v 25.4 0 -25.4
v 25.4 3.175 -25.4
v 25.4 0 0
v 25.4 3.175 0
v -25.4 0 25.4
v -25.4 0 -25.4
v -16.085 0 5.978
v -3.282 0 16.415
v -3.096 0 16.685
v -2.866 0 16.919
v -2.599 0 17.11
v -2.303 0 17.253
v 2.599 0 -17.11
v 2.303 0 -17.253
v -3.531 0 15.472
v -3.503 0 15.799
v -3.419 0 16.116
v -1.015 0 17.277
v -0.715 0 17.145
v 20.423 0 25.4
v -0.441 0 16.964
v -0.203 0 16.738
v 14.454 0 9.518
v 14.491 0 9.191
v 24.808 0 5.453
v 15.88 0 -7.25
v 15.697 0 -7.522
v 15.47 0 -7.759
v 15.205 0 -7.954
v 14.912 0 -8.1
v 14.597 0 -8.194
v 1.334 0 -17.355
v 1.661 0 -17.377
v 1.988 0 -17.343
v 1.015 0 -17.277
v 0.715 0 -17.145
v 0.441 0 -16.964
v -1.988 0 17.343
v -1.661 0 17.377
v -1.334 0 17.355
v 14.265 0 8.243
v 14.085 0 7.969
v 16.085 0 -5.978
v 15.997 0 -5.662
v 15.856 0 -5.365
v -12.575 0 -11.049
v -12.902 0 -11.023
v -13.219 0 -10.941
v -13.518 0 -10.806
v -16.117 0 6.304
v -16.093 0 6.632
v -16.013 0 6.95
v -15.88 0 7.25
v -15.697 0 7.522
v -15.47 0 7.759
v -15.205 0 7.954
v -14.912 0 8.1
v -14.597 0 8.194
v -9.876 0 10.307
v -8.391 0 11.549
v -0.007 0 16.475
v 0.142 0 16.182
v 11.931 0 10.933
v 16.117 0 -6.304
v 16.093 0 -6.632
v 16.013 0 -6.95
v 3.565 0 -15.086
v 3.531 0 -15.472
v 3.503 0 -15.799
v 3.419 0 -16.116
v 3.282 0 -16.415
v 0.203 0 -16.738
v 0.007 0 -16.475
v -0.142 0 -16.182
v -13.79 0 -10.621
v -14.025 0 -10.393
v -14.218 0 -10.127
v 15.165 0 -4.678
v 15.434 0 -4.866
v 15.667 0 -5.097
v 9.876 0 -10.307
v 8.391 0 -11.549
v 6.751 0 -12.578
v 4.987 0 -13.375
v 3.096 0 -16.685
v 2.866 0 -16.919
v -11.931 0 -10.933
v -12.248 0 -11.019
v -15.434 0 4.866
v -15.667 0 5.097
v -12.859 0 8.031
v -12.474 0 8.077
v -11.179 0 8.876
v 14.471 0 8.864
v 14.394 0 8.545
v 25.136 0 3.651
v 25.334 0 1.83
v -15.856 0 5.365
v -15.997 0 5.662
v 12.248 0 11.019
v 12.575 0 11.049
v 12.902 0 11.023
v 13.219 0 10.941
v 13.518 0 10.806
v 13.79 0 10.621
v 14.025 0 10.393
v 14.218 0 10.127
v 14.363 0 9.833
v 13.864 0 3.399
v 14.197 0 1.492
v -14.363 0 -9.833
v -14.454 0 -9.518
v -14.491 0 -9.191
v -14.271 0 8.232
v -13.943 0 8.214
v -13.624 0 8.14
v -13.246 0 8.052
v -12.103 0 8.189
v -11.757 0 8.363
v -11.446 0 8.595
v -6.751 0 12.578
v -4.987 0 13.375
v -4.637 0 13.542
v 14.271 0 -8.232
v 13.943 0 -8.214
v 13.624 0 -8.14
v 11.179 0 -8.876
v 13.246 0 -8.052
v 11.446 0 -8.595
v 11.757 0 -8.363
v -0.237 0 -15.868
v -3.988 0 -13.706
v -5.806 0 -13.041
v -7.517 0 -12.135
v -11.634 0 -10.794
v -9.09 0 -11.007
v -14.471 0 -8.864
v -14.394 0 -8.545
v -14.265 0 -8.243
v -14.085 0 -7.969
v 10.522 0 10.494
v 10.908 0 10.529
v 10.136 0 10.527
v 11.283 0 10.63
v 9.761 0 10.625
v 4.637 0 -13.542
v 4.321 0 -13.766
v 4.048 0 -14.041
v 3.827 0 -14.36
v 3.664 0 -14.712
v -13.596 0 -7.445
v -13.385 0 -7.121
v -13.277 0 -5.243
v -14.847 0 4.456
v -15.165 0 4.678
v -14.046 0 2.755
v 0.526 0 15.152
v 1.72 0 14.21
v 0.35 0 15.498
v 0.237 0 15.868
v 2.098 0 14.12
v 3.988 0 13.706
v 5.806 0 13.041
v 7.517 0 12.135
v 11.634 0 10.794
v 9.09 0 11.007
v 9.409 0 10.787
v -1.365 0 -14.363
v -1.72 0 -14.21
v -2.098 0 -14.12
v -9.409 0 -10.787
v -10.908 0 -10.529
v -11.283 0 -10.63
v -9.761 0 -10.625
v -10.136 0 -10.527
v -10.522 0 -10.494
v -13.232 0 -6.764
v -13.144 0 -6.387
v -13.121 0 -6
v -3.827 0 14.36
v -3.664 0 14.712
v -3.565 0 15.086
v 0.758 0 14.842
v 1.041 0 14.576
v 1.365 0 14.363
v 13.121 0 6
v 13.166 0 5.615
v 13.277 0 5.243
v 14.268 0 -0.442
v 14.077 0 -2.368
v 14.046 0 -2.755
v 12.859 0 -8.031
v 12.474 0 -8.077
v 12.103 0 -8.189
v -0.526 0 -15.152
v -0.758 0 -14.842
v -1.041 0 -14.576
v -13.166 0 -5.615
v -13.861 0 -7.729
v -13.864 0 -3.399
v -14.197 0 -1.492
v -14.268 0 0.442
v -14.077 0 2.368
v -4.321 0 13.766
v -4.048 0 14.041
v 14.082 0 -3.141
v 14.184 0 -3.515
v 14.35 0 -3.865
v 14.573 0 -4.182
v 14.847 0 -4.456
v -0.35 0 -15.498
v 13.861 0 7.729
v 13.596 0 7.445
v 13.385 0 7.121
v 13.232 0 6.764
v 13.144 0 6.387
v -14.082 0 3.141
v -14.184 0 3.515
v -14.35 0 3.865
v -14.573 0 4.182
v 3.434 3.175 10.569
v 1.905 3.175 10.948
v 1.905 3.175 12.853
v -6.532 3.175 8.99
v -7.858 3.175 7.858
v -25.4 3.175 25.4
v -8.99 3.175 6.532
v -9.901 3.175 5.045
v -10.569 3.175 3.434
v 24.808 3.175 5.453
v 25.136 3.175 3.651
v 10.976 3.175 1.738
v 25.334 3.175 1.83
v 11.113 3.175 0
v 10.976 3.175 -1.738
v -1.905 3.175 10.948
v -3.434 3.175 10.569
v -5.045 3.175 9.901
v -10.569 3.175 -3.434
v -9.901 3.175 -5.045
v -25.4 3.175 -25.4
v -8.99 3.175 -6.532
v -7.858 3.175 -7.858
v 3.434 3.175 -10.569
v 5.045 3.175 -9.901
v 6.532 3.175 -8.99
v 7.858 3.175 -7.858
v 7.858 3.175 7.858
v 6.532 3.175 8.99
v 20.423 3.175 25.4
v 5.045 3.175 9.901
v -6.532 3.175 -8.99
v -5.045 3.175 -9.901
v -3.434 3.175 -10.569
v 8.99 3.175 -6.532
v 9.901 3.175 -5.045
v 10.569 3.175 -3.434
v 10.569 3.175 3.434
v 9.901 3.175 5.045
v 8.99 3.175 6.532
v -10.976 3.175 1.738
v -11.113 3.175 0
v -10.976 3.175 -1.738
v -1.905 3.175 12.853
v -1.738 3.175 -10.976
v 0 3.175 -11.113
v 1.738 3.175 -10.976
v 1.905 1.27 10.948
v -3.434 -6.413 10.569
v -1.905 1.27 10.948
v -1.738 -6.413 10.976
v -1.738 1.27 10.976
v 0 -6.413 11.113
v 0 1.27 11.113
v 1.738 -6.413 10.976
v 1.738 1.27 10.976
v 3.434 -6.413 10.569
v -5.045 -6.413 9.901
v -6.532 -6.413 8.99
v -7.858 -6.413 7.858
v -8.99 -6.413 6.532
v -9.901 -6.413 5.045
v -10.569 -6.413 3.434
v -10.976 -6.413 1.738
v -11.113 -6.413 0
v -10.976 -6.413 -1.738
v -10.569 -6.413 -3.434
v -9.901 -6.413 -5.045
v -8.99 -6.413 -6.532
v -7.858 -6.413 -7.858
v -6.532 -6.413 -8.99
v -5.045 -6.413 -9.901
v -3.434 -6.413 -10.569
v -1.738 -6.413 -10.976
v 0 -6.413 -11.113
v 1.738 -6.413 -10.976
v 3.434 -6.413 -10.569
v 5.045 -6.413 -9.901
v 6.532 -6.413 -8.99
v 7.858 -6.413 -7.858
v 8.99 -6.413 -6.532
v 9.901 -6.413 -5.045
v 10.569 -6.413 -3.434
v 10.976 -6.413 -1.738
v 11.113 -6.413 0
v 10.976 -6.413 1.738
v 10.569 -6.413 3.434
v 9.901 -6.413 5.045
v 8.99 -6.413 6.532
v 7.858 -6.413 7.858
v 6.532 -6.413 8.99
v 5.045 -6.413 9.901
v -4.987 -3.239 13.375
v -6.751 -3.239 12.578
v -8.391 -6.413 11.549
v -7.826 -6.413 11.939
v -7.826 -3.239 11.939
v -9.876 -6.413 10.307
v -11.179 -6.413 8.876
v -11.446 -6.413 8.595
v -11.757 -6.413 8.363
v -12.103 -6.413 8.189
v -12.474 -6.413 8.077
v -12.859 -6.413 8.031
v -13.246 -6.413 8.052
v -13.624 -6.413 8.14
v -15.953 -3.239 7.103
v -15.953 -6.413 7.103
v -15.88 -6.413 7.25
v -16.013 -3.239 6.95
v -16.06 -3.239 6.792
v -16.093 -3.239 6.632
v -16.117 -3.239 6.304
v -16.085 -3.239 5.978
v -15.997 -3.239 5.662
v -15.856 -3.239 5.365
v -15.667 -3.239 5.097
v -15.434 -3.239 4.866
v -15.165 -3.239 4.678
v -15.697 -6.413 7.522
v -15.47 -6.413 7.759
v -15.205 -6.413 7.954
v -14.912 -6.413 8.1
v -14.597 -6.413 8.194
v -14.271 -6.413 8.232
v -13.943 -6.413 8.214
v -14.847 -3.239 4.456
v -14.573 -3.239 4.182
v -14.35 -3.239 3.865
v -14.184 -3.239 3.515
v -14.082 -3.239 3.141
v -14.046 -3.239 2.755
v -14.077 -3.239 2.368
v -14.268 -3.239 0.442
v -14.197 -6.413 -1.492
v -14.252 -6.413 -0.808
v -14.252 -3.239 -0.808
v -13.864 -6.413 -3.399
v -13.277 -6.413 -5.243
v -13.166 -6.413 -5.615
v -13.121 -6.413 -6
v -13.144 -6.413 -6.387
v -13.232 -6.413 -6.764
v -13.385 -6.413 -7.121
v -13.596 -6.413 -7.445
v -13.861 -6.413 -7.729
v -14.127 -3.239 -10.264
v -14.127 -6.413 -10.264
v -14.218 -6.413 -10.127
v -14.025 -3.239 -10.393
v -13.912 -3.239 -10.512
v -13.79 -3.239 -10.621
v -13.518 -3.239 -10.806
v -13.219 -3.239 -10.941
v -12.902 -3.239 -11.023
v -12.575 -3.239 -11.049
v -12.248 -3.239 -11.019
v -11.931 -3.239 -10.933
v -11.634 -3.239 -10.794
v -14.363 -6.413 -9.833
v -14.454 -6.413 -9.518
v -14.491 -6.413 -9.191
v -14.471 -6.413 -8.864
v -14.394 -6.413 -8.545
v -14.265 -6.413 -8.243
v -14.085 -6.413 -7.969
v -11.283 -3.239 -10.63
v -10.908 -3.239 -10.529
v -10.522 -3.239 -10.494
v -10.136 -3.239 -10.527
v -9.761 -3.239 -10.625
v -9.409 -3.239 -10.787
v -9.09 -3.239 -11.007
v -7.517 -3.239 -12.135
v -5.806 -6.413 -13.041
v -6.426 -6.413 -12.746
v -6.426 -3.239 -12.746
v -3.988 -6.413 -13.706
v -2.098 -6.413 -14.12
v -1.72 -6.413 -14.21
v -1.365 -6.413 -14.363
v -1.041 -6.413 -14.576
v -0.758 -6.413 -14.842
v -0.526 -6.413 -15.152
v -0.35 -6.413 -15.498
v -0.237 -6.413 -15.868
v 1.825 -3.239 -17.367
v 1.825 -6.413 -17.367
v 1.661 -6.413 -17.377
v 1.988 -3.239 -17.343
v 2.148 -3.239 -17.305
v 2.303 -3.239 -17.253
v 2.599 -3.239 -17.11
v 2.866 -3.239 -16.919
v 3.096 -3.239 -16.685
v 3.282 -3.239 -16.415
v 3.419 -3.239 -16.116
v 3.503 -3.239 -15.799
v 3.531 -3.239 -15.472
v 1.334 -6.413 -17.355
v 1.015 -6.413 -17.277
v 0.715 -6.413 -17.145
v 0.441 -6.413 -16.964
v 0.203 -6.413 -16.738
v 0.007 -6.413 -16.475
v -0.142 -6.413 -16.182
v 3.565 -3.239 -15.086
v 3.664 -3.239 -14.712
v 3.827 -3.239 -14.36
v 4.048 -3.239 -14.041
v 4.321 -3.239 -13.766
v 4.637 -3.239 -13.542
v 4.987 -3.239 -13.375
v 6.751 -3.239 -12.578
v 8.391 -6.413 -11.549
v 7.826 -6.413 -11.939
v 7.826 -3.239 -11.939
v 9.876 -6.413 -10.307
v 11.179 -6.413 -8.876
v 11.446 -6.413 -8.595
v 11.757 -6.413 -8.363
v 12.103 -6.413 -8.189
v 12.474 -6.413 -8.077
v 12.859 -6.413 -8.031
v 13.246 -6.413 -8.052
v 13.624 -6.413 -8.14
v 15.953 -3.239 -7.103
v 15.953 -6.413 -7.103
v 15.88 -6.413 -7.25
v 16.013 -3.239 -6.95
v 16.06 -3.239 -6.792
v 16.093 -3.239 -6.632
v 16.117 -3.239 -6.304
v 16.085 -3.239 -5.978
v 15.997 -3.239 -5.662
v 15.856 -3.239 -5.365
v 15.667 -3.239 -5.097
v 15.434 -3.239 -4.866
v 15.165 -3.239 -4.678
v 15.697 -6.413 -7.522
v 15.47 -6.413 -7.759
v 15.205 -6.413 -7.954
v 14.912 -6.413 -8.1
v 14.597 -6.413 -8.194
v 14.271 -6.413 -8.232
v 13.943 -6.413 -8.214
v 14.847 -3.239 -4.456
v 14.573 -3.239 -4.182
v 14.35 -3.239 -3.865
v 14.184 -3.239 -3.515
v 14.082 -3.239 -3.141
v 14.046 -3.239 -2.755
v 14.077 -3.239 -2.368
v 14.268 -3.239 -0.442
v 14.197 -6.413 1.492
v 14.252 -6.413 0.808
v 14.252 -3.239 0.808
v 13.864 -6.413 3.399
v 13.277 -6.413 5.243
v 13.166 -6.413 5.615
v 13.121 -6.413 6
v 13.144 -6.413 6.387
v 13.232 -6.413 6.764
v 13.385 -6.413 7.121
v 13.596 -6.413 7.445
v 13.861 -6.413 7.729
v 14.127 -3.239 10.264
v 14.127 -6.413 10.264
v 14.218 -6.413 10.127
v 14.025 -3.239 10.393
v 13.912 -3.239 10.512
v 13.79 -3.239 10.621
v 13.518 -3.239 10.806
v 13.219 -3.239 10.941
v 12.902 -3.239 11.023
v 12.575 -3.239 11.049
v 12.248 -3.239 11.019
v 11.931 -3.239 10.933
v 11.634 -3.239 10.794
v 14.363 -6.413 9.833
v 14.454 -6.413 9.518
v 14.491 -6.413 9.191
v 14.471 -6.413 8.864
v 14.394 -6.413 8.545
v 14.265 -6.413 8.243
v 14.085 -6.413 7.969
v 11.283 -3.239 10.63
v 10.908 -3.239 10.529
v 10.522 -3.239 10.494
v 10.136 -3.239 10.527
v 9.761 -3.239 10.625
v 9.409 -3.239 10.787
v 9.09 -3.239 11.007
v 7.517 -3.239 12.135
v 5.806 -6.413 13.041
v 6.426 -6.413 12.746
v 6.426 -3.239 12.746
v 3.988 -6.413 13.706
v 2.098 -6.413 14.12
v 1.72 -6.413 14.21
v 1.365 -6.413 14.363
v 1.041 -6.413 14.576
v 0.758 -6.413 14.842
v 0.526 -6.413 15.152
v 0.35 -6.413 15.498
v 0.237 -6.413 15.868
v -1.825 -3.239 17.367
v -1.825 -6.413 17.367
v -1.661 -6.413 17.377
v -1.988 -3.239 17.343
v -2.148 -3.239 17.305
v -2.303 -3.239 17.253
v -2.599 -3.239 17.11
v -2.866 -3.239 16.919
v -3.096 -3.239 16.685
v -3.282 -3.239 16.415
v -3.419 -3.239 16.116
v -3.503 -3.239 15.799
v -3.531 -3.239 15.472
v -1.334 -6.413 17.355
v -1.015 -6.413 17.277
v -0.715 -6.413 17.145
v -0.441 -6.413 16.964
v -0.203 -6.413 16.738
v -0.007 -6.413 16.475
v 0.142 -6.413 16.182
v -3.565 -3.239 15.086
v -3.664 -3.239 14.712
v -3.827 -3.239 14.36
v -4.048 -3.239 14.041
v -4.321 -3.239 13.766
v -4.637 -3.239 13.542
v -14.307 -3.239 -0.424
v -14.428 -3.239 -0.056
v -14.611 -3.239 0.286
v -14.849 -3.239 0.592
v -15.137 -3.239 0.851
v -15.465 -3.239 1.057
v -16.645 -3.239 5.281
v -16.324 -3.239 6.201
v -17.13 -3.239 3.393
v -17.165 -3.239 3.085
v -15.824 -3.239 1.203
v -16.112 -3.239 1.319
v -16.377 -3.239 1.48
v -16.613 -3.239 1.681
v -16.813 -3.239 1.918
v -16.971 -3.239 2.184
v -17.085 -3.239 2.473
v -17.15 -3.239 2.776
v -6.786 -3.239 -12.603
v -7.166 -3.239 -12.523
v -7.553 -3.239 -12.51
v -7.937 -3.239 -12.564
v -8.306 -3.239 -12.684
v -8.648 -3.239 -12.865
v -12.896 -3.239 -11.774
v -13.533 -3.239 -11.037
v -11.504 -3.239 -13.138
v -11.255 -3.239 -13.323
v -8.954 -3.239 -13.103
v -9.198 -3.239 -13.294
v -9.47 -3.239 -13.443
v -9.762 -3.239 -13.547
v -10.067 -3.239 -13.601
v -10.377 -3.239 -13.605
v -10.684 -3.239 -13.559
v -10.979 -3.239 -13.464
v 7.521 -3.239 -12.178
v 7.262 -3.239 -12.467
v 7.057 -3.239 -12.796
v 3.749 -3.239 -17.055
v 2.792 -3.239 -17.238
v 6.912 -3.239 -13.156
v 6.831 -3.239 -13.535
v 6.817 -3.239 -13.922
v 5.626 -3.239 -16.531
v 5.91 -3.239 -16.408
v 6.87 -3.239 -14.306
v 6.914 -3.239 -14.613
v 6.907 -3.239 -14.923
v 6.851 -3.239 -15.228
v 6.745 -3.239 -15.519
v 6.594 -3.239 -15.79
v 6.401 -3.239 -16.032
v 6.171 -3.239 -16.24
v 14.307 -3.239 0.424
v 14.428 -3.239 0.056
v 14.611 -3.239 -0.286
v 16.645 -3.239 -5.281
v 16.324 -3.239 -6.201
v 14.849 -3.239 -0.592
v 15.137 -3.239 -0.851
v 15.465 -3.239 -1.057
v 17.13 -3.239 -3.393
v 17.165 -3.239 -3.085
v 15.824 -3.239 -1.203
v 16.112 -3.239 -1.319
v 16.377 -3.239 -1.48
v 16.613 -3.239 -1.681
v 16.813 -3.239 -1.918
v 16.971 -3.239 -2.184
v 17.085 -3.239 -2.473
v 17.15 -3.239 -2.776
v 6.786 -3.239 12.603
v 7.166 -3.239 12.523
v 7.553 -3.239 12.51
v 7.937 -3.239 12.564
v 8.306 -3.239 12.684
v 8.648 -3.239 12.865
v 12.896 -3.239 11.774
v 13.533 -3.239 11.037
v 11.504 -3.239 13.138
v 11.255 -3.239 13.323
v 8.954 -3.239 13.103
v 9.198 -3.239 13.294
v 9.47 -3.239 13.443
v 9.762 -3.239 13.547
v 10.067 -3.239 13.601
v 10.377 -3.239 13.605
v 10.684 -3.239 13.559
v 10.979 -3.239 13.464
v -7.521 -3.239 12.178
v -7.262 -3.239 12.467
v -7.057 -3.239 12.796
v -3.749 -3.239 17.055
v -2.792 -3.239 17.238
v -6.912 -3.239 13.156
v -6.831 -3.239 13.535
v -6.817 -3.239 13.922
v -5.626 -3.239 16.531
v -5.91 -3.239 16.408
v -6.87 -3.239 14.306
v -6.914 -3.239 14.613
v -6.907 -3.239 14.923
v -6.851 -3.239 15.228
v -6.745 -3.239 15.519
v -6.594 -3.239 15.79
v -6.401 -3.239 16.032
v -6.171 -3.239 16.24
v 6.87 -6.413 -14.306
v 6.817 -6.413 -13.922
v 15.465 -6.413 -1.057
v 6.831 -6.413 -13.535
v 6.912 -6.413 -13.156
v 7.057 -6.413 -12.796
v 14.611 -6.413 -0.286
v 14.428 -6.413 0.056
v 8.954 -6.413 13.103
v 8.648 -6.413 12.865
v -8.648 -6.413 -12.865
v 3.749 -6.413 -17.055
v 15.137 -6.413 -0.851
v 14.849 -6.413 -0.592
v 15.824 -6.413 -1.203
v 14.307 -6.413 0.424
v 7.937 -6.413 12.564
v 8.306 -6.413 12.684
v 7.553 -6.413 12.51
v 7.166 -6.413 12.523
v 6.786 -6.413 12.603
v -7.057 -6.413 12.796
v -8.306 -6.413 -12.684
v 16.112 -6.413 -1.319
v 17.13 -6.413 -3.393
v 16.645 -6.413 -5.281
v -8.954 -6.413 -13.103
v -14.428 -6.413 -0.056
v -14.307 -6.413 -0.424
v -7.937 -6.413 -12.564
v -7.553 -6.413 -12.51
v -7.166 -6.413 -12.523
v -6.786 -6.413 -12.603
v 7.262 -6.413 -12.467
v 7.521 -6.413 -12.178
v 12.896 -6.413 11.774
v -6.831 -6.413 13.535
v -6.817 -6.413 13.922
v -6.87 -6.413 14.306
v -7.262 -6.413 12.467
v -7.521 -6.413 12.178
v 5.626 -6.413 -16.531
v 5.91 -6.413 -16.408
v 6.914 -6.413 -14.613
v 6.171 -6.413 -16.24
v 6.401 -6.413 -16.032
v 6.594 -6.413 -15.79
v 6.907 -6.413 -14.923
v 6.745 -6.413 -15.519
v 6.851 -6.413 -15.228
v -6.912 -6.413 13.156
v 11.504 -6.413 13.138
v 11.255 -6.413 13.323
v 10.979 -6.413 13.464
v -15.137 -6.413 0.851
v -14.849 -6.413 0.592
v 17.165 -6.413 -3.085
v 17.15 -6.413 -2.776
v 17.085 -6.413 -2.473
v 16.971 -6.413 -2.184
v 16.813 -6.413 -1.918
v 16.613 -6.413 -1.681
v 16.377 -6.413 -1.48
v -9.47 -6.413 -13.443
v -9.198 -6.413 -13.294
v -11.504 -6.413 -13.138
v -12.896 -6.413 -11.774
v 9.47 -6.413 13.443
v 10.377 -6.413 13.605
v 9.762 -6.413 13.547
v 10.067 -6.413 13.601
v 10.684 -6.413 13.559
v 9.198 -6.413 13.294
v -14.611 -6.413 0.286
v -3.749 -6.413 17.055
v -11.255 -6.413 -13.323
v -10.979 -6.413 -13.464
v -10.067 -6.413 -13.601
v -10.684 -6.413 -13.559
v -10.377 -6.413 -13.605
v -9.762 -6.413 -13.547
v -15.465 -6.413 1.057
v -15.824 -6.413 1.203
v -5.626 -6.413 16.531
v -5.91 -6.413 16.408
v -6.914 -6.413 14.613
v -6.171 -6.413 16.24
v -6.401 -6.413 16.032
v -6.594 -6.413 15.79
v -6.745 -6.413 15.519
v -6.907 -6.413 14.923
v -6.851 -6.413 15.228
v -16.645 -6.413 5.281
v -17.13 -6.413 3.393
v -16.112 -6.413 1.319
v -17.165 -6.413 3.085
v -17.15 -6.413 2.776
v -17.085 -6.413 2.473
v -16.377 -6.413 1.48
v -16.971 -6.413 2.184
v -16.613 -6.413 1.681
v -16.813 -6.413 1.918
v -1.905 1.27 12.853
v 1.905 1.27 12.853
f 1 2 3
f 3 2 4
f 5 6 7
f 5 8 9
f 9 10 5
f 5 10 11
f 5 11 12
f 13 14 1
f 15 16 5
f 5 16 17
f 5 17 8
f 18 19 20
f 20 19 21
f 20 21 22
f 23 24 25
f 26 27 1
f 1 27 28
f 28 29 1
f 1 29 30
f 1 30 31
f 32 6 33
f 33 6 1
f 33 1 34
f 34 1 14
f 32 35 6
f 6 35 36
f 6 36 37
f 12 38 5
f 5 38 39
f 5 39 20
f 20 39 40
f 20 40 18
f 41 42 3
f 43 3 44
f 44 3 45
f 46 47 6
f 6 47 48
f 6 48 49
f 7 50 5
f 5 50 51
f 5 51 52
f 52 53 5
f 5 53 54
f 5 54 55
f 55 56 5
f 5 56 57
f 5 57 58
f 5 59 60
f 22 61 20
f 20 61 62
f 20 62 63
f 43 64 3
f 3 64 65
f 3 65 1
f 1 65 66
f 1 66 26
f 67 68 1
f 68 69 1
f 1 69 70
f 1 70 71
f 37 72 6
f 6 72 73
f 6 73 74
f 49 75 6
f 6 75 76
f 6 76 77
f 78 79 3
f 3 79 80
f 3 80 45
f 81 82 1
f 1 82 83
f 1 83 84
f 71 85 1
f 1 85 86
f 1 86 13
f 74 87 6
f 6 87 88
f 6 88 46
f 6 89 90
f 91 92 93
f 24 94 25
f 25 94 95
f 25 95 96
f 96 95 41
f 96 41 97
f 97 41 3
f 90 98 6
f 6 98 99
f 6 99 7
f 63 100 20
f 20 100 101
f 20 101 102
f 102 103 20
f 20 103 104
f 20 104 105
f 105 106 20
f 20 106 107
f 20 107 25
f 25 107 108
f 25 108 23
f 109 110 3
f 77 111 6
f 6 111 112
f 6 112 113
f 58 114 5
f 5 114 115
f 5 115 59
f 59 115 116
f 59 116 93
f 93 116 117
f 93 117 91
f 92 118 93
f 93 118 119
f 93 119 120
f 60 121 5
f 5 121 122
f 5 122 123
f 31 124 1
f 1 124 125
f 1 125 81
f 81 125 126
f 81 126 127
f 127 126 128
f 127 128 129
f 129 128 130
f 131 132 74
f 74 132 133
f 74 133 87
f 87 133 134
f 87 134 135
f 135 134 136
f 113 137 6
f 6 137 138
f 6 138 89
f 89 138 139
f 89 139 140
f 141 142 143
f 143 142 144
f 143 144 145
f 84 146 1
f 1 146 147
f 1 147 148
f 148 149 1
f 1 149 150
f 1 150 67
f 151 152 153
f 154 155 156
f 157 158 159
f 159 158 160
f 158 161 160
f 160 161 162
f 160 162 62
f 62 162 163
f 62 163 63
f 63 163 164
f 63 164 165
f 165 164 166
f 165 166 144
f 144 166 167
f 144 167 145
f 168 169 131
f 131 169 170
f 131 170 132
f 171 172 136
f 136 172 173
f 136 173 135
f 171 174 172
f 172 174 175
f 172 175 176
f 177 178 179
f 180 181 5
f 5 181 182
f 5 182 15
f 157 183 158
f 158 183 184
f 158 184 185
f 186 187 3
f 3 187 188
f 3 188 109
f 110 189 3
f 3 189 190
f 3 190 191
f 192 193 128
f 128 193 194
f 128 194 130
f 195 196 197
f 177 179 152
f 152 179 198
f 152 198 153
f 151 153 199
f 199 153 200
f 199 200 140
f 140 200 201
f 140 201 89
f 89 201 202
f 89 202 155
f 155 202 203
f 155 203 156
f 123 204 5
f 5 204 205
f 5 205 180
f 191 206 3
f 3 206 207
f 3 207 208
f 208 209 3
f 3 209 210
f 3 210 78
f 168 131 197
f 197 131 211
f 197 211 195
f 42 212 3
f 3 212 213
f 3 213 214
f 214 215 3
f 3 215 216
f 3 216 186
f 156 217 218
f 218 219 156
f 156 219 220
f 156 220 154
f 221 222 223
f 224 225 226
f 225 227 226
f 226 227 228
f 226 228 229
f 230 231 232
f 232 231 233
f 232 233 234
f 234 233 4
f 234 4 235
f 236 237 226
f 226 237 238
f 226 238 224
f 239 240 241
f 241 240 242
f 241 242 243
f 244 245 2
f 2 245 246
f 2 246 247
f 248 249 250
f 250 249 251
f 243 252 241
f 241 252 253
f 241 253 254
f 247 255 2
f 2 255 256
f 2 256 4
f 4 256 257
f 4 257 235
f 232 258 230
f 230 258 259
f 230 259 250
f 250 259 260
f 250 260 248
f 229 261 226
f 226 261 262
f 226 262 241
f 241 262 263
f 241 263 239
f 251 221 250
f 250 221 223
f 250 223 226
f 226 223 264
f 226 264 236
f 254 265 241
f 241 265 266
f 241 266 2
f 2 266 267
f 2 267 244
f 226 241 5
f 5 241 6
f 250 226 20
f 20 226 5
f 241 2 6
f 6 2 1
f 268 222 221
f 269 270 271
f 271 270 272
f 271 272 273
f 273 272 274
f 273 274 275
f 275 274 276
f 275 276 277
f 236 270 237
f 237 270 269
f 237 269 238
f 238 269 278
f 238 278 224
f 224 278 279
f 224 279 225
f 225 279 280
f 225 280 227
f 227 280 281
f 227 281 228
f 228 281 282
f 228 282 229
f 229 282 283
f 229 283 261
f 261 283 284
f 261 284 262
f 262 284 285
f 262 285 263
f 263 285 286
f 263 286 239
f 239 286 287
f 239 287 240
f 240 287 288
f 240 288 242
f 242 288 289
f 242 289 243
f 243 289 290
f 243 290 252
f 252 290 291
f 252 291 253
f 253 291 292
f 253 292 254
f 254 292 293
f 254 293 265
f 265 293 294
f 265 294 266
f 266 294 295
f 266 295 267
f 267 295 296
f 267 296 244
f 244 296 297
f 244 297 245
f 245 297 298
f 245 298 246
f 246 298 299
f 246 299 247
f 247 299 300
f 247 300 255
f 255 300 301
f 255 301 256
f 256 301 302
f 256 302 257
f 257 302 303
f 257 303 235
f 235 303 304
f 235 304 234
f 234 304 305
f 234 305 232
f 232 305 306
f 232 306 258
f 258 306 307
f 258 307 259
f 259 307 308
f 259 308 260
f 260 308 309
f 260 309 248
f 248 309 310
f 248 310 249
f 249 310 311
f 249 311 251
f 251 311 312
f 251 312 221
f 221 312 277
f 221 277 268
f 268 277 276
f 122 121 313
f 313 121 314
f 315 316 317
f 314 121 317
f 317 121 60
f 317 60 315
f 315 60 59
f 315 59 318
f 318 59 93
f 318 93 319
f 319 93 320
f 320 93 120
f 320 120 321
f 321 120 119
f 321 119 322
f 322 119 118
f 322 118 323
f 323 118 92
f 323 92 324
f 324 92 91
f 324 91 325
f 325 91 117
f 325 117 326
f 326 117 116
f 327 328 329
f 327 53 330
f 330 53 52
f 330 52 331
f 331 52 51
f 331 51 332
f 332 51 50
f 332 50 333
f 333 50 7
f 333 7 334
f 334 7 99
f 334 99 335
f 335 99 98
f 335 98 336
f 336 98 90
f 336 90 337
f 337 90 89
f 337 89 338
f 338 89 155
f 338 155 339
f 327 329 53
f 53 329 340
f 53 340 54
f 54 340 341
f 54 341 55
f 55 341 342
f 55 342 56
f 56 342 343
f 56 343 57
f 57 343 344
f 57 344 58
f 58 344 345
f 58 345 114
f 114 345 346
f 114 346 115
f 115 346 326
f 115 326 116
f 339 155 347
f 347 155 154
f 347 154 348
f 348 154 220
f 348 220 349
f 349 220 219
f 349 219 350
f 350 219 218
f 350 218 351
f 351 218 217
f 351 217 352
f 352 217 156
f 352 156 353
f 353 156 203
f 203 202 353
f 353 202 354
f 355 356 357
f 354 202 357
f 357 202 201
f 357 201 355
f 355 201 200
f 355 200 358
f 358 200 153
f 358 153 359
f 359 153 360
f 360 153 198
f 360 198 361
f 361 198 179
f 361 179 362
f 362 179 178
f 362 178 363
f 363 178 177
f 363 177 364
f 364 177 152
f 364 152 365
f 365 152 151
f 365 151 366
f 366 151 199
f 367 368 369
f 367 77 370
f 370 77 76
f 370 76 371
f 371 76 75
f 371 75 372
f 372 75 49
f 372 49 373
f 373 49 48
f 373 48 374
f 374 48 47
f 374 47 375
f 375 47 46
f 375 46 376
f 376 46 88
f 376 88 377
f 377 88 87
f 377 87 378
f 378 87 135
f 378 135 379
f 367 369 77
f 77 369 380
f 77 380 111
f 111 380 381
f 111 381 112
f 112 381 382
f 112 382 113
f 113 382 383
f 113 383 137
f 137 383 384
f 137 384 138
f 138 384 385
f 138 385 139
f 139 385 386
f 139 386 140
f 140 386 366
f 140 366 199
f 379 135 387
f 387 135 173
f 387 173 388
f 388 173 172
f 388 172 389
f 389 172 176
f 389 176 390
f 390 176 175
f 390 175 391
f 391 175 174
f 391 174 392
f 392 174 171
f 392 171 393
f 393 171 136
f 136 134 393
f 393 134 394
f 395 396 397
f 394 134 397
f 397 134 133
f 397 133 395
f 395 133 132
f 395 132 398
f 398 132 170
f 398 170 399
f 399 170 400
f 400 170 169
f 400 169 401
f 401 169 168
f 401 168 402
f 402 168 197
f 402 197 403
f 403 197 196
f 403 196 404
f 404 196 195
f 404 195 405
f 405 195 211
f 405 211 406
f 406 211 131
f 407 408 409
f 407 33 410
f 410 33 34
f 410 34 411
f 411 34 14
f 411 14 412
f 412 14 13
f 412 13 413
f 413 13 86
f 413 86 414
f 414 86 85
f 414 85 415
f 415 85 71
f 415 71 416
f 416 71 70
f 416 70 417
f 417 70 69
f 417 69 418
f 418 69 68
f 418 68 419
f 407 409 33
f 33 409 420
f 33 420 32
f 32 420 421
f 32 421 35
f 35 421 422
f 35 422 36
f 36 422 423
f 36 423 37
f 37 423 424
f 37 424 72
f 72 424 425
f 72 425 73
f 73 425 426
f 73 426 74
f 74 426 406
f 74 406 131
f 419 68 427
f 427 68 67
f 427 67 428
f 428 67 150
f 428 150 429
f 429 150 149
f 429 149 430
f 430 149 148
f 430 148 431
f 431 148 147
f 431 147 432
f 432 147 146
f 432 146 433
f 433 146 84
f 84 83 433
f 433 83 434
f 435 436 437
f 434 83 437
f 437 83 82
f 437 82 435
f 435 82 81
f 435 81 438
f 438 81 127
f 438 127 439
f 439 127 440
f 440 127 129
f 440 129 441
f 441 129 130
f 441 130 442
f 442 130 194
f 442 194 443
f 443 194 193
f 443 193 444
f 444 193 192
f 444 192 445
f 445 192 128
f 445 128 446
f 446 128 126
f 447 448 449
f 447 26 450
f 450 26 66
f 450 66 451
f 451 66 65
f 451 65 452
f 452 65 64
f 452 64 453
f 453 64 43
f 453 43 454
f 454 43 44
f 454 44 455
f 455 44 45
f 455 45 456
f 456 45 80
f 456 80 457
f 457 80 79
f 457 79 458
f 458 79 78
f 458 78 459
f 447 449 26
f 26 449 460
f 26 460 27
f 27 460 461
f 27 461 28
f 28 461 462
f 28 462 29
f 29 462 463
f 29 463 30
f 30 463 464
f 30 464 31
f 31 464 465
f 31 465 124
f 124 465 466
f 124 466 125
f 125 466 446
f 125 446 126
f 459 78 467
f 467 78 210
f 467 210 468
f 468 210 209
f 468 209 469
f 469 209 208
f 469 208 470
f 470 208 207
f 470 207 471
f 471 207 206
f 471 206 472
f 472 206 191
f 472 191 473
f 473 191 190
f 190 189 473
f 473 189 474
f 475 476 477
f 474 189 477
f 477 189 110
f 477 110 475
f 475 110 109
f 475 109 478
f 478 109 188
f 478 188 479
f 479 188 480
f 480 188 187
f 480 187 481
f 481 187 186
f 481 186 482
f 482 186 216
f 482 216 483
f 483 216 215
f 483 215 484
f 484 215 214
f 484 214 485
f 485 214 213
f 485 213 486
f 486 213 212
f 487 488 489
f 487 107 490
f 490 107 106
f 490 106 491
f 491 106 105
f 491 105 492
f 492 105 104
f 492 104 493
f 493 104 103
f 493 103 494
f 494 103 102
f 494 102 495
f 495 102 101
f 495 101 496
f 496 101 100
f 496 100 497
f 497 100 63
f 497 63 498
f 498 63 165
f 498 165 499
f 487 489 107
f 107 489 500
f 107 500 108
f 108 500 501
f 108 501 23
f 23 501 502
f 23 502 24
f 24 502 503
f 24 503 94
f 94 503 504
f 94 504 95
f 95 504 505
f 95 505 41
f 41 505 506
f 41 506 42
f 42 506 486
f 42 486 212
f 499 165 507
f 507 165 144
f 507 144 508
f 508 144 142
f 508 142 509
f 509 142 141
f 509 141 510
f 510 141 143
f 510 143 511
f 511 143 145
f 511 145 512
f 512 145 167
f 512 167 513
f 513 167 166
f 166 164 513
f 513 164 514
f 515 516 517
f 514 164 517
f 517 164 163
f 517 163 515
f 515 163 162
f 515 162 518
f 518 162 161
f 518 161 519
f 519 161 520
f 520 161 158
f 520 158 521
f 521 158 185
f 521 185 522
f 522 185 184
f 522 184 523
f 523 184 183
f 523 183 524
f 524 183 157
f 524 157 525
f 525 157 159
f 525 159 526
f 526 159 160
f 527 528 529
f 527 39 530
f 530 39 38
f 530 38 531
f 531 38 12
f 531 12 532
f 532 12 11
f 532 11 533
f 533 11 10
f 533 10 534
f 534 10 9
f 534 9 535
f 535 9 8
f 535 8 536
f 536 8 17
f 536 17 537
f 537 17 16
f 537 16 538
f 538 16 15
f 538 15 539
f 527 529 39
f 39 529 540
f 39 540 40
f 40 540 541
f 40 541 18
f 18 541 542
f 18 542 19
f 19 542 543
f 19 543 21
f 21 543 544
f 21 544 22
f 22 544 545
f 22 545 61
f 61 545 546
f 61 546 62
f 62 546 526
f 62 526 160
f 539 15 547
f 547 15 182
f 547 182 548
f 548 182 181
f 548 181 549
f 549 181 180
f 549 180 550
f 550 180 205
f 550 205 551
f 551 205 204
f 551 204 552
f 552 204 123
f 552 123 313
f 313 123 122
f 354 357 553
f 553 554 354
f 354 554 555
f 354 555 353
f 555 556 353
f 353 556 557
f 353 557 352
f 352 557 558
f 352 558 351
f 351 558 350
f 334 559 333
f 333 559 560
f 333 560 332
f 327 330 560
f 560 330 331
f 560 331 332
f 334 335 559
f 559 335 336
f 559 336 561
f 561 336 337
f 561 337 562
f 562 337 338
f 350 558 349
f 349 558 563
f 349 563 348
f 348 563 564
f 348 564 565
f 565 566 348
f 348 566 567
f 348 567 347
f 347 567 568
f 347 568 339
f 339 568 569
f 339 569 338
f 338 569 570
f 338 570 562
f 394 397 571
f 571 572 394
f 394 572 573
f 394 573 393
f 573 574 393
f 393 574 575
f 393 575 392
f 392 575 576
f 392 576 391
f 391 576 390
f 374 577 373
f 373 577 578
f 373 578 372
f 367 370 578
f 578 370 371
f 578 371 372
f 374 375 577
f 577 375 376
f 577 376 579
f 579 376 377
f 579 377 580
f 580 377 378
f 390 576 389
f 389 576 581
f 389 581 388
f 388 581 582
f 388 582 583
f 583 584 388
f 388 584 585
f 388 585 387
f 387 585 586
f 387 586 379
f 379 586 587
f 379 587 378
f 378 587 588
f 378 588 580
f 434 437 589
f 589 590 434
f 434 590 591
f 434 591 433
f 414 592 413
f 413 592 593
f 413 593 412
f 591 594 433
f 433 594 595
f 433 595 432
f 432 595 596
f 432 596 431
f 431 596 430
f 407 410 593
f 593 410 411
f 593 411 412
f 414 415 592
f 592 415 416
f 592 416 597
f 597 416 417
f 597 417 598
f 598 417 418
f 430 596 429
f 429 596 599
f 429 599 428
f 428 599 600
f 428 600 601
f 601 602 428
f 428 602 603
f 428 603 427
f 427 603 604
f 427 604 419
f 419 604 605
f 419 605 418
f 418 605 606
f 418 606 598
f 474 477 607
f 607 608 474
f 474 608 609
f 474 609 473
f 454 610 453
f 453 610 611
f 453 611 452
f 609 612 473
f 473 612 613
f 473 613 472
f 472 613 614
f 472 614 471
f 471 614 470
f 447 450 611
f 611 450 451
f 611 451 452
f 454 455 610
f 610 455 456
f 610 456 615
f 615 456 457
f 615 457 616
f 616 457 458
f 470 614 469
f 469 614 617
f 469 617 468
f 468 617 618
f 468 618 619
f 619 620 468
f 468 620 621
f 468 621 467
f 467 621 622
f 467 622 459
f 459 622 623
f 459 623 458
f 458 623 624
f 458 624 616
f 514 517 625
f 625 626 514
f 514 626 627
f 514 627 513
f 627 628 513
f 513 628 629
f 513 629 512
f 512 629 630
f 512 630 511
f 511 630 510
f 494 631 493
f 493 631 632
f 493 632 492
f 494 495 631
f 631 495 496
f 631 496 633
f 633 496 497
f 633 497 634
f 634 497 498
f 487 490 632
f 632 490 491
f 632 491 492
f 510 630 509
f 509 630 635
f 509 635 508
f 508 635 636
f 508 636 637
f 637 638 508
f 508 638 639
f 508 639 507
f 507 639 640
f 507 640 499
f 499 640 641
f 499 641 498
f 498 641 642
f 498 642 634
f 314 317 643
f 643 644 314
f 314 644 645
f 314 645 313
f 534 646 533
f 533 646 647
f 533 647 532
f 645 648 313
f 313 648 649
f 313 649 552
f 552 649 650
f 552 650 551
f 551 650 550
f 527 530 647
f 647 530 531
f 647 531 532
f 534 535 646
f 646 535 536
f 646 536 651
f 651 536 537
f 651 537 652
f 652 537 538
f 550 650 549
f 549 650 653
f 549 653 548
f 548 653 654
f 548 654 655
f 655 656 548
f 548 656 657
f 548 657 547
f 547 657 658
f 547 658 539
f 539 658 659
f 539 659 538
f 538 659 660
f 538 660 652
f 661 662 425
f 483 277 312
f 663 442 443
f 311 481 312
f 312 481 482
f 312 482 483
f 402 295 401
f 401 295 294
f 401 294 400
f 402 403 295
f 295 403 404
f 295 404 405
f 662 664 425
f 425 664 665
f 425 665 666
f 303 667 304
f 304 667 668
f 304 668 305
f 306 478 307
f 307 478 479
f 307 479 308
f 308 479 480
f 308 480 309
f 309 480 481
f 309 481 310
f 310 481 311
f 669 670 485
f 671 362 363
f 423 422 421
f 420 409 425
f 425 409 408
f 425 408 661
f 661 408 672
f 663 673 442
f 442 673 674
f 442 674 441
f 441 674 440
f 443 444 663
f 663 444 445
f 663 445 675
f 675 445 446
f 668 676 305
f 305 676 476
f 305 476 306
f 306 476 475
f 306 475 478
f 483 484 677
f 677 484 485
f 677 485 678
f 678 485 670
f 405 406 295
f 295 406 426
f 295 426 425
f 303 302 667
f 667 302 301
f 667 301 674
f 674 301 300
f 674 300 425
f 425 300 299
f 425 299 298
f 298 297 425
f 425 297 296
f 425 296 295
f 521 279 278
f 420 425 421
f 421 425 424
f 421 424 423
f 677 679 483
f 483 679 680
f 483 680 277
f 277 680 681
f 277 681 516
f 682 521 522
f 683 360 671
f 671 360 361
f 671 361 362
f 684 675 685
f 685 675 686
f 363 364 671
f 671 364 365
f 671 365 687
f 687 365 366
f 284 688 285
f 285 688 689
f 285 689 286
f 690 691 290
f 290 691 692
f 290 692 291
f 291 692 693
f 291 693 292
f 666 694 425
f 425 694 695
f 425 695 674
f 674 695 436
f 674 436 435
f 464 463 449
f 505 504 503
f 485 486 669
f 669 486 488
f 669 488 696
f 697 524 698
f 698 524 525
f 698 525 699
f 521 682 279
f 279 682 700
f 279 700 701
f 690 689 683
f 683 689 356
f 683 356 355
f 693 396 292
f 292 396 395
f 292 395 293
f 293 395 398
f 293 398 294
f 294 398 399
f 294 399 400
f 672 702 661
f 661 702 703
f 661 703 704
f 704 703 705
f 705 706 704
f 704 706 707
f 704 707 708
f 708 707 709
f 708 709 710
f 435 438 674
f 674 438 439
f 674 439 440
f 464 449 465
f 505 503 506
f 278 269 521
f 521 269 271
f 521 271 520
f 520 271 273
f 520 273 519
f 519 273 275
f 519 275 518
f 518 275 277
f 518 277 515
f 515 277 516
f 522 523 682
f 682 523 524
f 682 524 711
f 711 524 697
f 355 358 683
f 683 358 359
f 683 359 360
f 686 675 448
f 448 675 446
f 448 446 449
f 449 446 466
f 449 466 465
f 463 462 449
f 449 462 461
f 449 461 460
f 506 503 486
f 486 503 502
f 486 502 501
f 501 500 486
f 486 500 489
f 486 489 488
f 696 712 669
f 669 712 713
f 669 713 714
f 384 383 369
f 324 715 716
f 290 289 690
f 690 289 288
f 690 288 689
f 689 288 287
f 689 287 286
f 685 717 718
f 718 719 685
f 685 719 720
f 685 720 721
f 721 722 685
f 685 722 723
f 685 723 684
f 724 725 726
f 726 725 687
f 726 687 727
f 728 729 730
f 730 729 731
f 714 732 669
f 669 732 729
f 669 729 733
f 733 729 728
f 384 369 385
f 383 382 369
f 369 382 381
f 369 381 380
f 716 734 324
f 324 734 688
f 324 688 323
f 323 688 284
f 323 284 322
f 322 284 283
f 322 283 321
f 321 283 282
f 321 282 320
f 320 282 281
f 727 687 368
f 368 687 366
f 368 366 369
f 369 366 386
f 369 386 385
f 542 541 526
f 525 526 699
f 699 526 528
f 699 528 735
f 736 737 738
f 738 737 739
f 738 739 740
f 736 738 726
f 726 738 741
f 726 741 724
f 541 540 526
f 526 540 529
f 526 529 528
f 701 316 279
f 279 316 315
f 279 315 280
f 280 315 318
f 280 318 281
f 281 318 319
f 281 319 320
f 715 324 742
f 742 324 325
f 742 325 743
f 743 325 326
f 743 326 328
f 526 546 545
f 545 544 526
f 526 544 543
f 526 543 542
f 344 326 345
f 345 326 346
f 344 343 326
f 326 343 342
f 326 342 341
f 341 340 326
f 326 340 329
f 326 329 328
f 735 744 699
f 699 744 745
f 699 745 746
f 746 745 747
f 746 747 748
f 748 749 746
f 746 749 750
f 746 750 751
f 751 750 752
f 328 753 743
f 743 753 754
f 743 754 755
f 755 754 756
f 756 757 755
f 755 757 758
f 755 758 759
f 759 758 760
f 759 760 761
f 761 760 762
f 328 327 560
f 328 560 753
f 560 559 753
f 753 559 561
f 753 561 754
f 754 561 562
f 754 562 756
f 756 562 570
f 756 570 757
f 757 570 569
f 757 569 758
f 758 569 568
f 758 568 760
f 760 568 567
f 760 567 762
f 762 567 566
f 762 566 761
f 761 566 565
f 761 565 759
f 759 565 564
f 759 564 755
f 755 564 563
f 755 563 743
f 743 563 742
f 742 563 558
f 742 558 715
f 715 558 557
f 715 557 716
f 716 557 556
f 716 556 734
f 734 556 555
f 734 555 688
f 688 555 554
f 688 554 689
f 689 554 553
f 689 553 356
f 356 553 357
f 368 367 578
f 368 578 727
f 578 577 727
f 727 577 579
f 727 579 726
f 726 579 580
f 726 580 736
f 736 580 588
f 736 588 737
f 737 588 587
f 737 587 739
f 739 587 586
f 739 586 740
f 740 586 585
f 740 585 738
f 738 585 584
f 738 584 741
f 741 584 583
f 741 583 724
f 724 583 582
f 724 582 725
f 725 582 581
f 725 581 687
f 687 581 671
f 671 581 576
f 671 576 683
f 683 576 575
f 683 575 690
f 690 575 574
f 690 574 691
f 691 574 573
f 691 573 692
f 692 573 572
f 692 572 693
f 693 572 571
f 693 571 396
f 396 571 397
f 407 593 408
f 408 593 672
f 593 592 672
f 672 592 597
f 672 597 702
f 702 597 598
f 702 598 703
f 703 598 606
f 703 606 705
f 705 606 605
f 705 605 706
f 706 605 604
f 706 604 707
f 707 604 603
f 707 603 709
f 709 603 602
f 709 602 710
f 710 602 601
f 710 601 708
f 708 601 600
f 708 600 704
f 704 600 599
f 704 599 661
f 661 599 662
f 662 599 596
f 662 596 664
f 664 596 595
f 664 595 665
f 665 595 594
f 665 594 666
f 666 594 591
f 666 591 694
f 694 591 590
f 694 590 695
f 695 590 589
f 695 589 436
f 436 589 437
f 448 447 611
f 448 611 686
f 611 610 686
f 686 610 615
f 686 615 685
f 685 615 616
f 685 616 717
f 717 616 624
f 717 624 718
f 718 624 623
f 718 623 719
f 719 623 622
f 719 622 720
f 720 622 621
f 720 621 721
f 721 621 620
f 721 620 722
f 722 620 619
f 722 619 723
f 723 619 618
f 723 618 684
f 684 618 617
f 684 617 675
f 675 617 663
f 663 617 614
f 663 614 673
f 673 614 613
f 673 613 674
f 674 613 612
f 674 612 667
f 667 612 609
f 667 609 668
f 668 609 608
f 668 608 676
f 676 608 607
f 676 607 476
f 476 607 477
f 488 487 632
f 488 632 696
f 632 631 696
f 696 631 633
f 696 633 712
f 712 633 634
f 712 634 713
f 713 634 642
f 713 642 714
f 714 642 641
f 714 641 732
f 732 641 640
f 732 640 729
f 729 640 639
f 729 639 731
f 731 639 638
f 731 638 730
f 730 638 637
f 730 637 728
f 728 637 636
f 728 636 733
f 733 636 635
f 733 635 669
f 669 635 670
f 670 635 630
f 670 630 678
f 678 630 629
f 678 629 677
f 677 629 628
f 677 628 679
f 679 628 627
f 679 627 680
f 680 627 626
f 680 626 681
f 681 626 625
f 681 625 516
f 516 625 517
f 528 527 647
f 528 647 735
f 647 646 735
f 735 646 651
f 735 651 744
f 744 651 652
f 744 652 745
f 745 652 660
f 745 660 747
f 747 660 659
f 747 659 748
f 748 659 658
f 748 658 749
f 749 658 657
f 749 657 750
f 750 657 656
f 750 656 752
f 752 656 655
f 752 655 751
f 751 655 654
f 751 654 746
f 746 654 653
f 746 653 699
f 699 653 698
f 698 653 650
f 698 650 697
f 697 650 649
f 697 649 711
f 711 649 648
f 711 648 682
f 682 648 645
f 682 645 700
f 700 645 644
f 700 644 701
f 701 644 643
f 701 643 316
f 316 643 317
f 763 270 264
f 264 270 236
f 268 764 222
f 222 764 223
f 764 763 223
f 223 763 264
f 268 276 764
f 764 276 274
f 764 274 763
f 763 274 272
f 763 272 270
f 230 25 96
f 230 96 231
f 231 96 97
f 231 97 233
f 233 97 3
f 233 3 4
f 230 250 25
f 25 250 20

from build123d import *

# Parameters (mm, degrees)
SKETCH1_W           = 50.8
SKETCH1_H           = 50.8
SKETCH1_R           = 11.1125
BOSS_EXTRUDE1_DEPTH = 3.175
SKETCH2_R           = 11.1125
BOSS_EXTRUDE2_DEPTH = 3.2385
SKETCH3_R           = 11.1125
BOSS_EXTRUDE3_DEPTH = 3.175
SKETCH4_W           = 3.81
SKETCH4_H           = 1.905
CUT_EXTRUDE1_DEPTH  = 1.905
CUT_EXTRUDE2_DEPTH  = 4.175


with BuildPart() as part:
    # Sketch1 → Boss-Extrude1 (new body)
    with BuildSketch(Plane(origin=(0, 0, 0), x_dir=(1, 0, 0), z_dir=(0, 1, 0))):
        Rectangle(SKETCH1_W, SKETCH1_H)
        Circle(SKETCH1_R, mode=Mode.SUBTRACT)
    extrude(amount=BOSS_EXTRUDE1_DEPTH)

    # Sketch2 → Boss-Extrude2 (add)
    with BuildSketch(Plane.XZ):
        with BuildLine():
            ThreePointArc((-14.076948351, 2.368425674), (-14.196601152, -1.492122907), (-13.276909868, -5.243432024))
            ThreePointArc((-13.276909868, -5.243432024), (-13.179807483, -6.577553377), (-13.860975695, -7.72877817))
            ThreePointArc((-13.860975695, -7.72877817), (-14.480846101, -8.94534234), (-14.127459264, -10.264199968))
            ThreePointArc((-14.127459264, -10.264199968), (-12.982353661, -11.007840242), (-11.63378189, -10.794247457))
            ThreePointArc((-11.63378189, -10.794247457), (-10.328409495, -10.502166015), (-9.089590976, -11.006782042))
            ThreePointArc((-9.089590976, -11.006782042), (-5.806084233, -13.040678699), (-2.097509598, -14.119857242))
            ThreePointArc((-2.097509598, -14.119857242), (-0.893575422, -14.702824786), (-0.237169612, -15.868346158))
            ThreePointArc((-0.237169612, -15.868346158), (0.506470662, -17.013451761), (1.82532829, -17.366838598))
            ThreePointArc((1.82532829, -17.366838598), (3.04189246, -16.746968192), (3.531201567, -15.472274387))
            ThreePointArc((3.531201567, -15.472274387), (3.930937816, -14.195748011), (4.987357374, -13.375207717))
            ThreePointArc((4.987357374, -13.375207717), (8.390516919, -11.548555791), (11.17940027, -8.876425218))
            ThreePointArc((11.17940027, -8.876425218), (12.286232061, -8.125271409), (13.623806083, -8.139567988))
            ThreePointArc((13.623806083, -8.139567988), (14.987316762, -8.068109421), (15.952787554, -7.10263863))
            ThreePointArc((15.952787554, -7.10263863), (16.024246121, -5.73912795), (15.164983457, -4.67802693))
            ThreePointArc((15.164983457, -4.67802693), (14.259347311, -3.693581996), (14.076948351, -2.368425674))
            ThreePointArc((14.076948351, -2.368425674), (14.196601152, 1.492122907), (13.276909868, 5.243432024))
            ThreePointArc((13.276909868, 5.243432024), (13.179807483, 6.577553377), (13.860975695, 7.72877817))
            ThreePointArc((13.860975695, 7.72877817), (14.480846101, 8.94534234), (14.127459264, 10.264199968))
            ThreePointArc((14.127459264, 10.264199968), (12.982353661, 11.007840242), (11.63378189, 10.794247457))
            ThreePointArc((11.63378189, 10.794247457), (10.328409495, 10.502166015), (9.089590976, 11.006782042))
            ThreePointArc((9.089590976, 11.006782042), (5.806084233, 13.040678699), (2.097509598, 14.119857242))
            ThreePointArc((2.097509598, 14.119857242), (0.893575422, 14.702824786), (0.237169612, 15.868346158))
            ThreePointArc((0.237169612, 15.868346158), (-0.506470662, 17.013451761), (-1.82532829, 17.366838598))
            ThreePointArc((-1.82532829, 17.366838598), (-3.04189246, 16.746968192), (-3.531201567, 15.472274387))
            ThreePointArc((-3.531201567, 15.472274387), (-3.930937816, 14.195748011), (-4.987357374, 13.375207717))
            ThreePointArc((-4.987357374, 13.375207717), (-8.390516919, 11.548555791), (-11.17940027, 8.876425218))
            ThreePointArc((-11.17940027, 8.876425218), (-12.286232061, 8.125271409), (-13.623806083, 8.139567988))
            ThreePointArc((-13.623806083, 8.139567988), (-14.987316762, 8.068109421), (-15.952787554, 7.10263863))
            ThreePointArc((-15.952787554, 7.10263863), (-16.024246121, 5.73912795), (-15.164983457, 4.67802693))
            ThreePointArc((-15.164983457, 4.67802693), (-14.259347311, 3.693581996), (-14.076948351, 2.368425674))
        make_face()
        Circle(SKETCH2_R, mode=Mode.SUBTRACT)
    extrude(amount=BOSS_EXTRUDE2_DEPTH)

    # Sketch3 → Boss-Extrude3 (add)
    with BuildSketch(Plane.XZ.offset(3.2385)):
        with BuildLine():
            ThreePointArc((-13.623806083, 8.139567988), (-12.286232061, 8.125271409), (-11.17940027, 8.876425218))
            ThreePointArc((-11.17940027, 8.876425218), (-9.625048397, 10.541743612), (-7.82558077, 11.938601285))
            ThreePointArc((-7.82558077, 11.938601285), (-6.977108558, 12.97272099), (-6.869996245, 14.30607601))
            ThreePointArc((-6.869996245, 14.30607601), (-6.675129359, 15.657480685), (-5.626048811, 16.531378679))
            ThreePointArc((-5.626048811, 16.531378679), (-3.749033675, 17.05531157), (-1.82532829, 17.366838598))
            ThreePointArc((-1.82532829, 17.366838598), (-0.506470662, 17.013451761), (0.237169612, 15.868346158))
            ThreePointArc((0.237169612, 15.868346158), (0.893575422, 14.702824786), (2.097509598, 14.119857242))
            ThreePointArc((2.097509598, 14.119857242), (4.31689357, 13.606408231), (6.426341614, 12.746452389))
            ThreePointArc((6.426341614, 12.746452389), (7.746151654, 12.528713751), (8.954427131, 13.102629278))
            ThreePointArc((8.954427131, 13.102629278), (10.222211353, 13.609571941), (11.50356949, 13.137990533))
            ThreePointArc((11.50356949, 13.137990533), (12.895816252, 11.774414187), (14.127459264, 10.264199968))
            ThreePointArc((14.127459264, 10.264199968), (14.480846101, 8.94534234), (13.860975695, 7.72877817))
            ThreePointArc((13.860975695, 7.72877817), (13.179807483, 6.577553377), (13.276909868, 5.243432024))
            ThreePointArc((13.276909868, 5.243432024), (13.941941967, 3.064664618), (14.251922384, 0.807851103))
            ThreePointArc((14.251922384, 0.807851103), (14.723260212, -0.444007239), (15.824423376, -1.203446733))
            ThreePointArc((15.824423376, -1.203446733), (16.897340712, -2.047908744), (17.129618301, -3.393388146))
            ThreePointArc((17.129618301, -3.393388146), (16.644849927, -5.280897383), (15.952787554, -7.10263863))
            ThreePointArc((15.952787554, -7.10263863), (14.987316762, -8.068109421), (13.623806083, -8.139567988))
            ThreePointArc((13.623806083, -8.139567988), (12.286232061, -8.125271409), (11.17940027, -8.876425218))
            ThreePointArc((11.17940027, -8.876425218), (9.625048397, -10.541743612), (7.82558077, -11.938601285))
            ThreePointArc((7.82558077, -11.938601285), (6.977108558, -12.97272099), (6.869996245, -14.30607601))
            ThreePointArc((6.869996245, -14.30607601), (6.675129359, -15.657480685), (5.626048811, -16.531378679))
            ThreePointArc((5.626048811, -16.531378679), (3.749033675, -17.05531157), (1.82532829, -17.366838598))
            ThreePointArc((1.82532829, -17.366838598), (0.506470662, -17.013451761), (-0.237169612, -15.868346158))
            ThreePointArc((-0.237169612, -15.868346158), (-0.893575422, -14.702824786), (-2.097509598, -14.119857242))
            ThreePointArc((-2.097509598, -14.119857242), (-4.31689357, -13.606408231), (-6.426341614, -12.746452389))
            ThreePointArc((-6.426341614, -12.746452389), (-7.746151654, -12.528713751), (-8.954427131, -13.102629278))
            ThreePointArc((-8.954427131, -13.102629278), (-10.222211353, -13.609571941), (-11.50356949, -13.137990533))
            ThreePointArc((-11.50356949, -13.137990533), (-12.895816252, -11.774414187), (-14.127459264, -10.264199968))
            ThreePointArc((-14.127459264, -10.264199968), (-14.480846101, -8.94534234), (-13.860975695, -7.72877817))
            ThreePointArc((-13.860975695, -7.72877817), (-13.179807483, -6.577553377), (-13.276909868, -5.243432024))
            ThreePointArc((-13.276909868, -5.243432024), (-13.941941967, -3.064664618), (-14.251922384, -0.807851103))
            ThreePointArc((-14.251922384, -0.807851103), (-14.723260212, 0.444007239), (-15.824423376, 1.203446733))
            ThreePointArc((-15.824423376, 1.203446733), (-16.897340712, 2.047908744), (-17.129618301, 3.393388146))
            ThreePointArc((-17.129618301, 3.393388146), (-16.644849927, 5.280897383), (-15.952787554, 7.10263863))
            ThreePointArc((-15.952787554, 7.10263863), (-14.987316762, 8.068109421), (-13.623806083, 8.139567988))
        make_face()
        Circle(SKETCH3_R, mode=Mode.SUBTRACT)
    extrude(amount=BOSS_EXTRUDE3_DEPTH)

    # Sketch4 → Cut-Extrude1 (cut)
    with BuildSketch(Plane(origin=(0, 3.175, 0), x_dir=(1, 0, 0), z_dir=(0, 1, 0))):
        with Locations((0, -11.900496677)):
            Rectangle(SKETCH4_W, SKETCH4_H)
    extrude(amount=-CUT_EXTRUDE1_DEPTH, mode=Mode.SUBTRACT)

    # Sketch5 → Cut-Extrude2 (cut, through all)
    with BuildSketch(Plane.XZ):
        with BuildLine():
            Line((20.423083051, 25.4), (24.80772592, 5.45313989))
            ThreePointArc((24.80772592, 5.45313989), (25.251497365, 2.74260475), (25.4, 0))
            Line((25.4, 0), (25.4, 25.4))
            Line((25.4, 25.4), (20.423083051, 25.4))
        make_face()
    extrude(amount=-CUT_EXTRUDE2_DEPTH, mode=Mode.SUBTRACT)


solid = part.part
